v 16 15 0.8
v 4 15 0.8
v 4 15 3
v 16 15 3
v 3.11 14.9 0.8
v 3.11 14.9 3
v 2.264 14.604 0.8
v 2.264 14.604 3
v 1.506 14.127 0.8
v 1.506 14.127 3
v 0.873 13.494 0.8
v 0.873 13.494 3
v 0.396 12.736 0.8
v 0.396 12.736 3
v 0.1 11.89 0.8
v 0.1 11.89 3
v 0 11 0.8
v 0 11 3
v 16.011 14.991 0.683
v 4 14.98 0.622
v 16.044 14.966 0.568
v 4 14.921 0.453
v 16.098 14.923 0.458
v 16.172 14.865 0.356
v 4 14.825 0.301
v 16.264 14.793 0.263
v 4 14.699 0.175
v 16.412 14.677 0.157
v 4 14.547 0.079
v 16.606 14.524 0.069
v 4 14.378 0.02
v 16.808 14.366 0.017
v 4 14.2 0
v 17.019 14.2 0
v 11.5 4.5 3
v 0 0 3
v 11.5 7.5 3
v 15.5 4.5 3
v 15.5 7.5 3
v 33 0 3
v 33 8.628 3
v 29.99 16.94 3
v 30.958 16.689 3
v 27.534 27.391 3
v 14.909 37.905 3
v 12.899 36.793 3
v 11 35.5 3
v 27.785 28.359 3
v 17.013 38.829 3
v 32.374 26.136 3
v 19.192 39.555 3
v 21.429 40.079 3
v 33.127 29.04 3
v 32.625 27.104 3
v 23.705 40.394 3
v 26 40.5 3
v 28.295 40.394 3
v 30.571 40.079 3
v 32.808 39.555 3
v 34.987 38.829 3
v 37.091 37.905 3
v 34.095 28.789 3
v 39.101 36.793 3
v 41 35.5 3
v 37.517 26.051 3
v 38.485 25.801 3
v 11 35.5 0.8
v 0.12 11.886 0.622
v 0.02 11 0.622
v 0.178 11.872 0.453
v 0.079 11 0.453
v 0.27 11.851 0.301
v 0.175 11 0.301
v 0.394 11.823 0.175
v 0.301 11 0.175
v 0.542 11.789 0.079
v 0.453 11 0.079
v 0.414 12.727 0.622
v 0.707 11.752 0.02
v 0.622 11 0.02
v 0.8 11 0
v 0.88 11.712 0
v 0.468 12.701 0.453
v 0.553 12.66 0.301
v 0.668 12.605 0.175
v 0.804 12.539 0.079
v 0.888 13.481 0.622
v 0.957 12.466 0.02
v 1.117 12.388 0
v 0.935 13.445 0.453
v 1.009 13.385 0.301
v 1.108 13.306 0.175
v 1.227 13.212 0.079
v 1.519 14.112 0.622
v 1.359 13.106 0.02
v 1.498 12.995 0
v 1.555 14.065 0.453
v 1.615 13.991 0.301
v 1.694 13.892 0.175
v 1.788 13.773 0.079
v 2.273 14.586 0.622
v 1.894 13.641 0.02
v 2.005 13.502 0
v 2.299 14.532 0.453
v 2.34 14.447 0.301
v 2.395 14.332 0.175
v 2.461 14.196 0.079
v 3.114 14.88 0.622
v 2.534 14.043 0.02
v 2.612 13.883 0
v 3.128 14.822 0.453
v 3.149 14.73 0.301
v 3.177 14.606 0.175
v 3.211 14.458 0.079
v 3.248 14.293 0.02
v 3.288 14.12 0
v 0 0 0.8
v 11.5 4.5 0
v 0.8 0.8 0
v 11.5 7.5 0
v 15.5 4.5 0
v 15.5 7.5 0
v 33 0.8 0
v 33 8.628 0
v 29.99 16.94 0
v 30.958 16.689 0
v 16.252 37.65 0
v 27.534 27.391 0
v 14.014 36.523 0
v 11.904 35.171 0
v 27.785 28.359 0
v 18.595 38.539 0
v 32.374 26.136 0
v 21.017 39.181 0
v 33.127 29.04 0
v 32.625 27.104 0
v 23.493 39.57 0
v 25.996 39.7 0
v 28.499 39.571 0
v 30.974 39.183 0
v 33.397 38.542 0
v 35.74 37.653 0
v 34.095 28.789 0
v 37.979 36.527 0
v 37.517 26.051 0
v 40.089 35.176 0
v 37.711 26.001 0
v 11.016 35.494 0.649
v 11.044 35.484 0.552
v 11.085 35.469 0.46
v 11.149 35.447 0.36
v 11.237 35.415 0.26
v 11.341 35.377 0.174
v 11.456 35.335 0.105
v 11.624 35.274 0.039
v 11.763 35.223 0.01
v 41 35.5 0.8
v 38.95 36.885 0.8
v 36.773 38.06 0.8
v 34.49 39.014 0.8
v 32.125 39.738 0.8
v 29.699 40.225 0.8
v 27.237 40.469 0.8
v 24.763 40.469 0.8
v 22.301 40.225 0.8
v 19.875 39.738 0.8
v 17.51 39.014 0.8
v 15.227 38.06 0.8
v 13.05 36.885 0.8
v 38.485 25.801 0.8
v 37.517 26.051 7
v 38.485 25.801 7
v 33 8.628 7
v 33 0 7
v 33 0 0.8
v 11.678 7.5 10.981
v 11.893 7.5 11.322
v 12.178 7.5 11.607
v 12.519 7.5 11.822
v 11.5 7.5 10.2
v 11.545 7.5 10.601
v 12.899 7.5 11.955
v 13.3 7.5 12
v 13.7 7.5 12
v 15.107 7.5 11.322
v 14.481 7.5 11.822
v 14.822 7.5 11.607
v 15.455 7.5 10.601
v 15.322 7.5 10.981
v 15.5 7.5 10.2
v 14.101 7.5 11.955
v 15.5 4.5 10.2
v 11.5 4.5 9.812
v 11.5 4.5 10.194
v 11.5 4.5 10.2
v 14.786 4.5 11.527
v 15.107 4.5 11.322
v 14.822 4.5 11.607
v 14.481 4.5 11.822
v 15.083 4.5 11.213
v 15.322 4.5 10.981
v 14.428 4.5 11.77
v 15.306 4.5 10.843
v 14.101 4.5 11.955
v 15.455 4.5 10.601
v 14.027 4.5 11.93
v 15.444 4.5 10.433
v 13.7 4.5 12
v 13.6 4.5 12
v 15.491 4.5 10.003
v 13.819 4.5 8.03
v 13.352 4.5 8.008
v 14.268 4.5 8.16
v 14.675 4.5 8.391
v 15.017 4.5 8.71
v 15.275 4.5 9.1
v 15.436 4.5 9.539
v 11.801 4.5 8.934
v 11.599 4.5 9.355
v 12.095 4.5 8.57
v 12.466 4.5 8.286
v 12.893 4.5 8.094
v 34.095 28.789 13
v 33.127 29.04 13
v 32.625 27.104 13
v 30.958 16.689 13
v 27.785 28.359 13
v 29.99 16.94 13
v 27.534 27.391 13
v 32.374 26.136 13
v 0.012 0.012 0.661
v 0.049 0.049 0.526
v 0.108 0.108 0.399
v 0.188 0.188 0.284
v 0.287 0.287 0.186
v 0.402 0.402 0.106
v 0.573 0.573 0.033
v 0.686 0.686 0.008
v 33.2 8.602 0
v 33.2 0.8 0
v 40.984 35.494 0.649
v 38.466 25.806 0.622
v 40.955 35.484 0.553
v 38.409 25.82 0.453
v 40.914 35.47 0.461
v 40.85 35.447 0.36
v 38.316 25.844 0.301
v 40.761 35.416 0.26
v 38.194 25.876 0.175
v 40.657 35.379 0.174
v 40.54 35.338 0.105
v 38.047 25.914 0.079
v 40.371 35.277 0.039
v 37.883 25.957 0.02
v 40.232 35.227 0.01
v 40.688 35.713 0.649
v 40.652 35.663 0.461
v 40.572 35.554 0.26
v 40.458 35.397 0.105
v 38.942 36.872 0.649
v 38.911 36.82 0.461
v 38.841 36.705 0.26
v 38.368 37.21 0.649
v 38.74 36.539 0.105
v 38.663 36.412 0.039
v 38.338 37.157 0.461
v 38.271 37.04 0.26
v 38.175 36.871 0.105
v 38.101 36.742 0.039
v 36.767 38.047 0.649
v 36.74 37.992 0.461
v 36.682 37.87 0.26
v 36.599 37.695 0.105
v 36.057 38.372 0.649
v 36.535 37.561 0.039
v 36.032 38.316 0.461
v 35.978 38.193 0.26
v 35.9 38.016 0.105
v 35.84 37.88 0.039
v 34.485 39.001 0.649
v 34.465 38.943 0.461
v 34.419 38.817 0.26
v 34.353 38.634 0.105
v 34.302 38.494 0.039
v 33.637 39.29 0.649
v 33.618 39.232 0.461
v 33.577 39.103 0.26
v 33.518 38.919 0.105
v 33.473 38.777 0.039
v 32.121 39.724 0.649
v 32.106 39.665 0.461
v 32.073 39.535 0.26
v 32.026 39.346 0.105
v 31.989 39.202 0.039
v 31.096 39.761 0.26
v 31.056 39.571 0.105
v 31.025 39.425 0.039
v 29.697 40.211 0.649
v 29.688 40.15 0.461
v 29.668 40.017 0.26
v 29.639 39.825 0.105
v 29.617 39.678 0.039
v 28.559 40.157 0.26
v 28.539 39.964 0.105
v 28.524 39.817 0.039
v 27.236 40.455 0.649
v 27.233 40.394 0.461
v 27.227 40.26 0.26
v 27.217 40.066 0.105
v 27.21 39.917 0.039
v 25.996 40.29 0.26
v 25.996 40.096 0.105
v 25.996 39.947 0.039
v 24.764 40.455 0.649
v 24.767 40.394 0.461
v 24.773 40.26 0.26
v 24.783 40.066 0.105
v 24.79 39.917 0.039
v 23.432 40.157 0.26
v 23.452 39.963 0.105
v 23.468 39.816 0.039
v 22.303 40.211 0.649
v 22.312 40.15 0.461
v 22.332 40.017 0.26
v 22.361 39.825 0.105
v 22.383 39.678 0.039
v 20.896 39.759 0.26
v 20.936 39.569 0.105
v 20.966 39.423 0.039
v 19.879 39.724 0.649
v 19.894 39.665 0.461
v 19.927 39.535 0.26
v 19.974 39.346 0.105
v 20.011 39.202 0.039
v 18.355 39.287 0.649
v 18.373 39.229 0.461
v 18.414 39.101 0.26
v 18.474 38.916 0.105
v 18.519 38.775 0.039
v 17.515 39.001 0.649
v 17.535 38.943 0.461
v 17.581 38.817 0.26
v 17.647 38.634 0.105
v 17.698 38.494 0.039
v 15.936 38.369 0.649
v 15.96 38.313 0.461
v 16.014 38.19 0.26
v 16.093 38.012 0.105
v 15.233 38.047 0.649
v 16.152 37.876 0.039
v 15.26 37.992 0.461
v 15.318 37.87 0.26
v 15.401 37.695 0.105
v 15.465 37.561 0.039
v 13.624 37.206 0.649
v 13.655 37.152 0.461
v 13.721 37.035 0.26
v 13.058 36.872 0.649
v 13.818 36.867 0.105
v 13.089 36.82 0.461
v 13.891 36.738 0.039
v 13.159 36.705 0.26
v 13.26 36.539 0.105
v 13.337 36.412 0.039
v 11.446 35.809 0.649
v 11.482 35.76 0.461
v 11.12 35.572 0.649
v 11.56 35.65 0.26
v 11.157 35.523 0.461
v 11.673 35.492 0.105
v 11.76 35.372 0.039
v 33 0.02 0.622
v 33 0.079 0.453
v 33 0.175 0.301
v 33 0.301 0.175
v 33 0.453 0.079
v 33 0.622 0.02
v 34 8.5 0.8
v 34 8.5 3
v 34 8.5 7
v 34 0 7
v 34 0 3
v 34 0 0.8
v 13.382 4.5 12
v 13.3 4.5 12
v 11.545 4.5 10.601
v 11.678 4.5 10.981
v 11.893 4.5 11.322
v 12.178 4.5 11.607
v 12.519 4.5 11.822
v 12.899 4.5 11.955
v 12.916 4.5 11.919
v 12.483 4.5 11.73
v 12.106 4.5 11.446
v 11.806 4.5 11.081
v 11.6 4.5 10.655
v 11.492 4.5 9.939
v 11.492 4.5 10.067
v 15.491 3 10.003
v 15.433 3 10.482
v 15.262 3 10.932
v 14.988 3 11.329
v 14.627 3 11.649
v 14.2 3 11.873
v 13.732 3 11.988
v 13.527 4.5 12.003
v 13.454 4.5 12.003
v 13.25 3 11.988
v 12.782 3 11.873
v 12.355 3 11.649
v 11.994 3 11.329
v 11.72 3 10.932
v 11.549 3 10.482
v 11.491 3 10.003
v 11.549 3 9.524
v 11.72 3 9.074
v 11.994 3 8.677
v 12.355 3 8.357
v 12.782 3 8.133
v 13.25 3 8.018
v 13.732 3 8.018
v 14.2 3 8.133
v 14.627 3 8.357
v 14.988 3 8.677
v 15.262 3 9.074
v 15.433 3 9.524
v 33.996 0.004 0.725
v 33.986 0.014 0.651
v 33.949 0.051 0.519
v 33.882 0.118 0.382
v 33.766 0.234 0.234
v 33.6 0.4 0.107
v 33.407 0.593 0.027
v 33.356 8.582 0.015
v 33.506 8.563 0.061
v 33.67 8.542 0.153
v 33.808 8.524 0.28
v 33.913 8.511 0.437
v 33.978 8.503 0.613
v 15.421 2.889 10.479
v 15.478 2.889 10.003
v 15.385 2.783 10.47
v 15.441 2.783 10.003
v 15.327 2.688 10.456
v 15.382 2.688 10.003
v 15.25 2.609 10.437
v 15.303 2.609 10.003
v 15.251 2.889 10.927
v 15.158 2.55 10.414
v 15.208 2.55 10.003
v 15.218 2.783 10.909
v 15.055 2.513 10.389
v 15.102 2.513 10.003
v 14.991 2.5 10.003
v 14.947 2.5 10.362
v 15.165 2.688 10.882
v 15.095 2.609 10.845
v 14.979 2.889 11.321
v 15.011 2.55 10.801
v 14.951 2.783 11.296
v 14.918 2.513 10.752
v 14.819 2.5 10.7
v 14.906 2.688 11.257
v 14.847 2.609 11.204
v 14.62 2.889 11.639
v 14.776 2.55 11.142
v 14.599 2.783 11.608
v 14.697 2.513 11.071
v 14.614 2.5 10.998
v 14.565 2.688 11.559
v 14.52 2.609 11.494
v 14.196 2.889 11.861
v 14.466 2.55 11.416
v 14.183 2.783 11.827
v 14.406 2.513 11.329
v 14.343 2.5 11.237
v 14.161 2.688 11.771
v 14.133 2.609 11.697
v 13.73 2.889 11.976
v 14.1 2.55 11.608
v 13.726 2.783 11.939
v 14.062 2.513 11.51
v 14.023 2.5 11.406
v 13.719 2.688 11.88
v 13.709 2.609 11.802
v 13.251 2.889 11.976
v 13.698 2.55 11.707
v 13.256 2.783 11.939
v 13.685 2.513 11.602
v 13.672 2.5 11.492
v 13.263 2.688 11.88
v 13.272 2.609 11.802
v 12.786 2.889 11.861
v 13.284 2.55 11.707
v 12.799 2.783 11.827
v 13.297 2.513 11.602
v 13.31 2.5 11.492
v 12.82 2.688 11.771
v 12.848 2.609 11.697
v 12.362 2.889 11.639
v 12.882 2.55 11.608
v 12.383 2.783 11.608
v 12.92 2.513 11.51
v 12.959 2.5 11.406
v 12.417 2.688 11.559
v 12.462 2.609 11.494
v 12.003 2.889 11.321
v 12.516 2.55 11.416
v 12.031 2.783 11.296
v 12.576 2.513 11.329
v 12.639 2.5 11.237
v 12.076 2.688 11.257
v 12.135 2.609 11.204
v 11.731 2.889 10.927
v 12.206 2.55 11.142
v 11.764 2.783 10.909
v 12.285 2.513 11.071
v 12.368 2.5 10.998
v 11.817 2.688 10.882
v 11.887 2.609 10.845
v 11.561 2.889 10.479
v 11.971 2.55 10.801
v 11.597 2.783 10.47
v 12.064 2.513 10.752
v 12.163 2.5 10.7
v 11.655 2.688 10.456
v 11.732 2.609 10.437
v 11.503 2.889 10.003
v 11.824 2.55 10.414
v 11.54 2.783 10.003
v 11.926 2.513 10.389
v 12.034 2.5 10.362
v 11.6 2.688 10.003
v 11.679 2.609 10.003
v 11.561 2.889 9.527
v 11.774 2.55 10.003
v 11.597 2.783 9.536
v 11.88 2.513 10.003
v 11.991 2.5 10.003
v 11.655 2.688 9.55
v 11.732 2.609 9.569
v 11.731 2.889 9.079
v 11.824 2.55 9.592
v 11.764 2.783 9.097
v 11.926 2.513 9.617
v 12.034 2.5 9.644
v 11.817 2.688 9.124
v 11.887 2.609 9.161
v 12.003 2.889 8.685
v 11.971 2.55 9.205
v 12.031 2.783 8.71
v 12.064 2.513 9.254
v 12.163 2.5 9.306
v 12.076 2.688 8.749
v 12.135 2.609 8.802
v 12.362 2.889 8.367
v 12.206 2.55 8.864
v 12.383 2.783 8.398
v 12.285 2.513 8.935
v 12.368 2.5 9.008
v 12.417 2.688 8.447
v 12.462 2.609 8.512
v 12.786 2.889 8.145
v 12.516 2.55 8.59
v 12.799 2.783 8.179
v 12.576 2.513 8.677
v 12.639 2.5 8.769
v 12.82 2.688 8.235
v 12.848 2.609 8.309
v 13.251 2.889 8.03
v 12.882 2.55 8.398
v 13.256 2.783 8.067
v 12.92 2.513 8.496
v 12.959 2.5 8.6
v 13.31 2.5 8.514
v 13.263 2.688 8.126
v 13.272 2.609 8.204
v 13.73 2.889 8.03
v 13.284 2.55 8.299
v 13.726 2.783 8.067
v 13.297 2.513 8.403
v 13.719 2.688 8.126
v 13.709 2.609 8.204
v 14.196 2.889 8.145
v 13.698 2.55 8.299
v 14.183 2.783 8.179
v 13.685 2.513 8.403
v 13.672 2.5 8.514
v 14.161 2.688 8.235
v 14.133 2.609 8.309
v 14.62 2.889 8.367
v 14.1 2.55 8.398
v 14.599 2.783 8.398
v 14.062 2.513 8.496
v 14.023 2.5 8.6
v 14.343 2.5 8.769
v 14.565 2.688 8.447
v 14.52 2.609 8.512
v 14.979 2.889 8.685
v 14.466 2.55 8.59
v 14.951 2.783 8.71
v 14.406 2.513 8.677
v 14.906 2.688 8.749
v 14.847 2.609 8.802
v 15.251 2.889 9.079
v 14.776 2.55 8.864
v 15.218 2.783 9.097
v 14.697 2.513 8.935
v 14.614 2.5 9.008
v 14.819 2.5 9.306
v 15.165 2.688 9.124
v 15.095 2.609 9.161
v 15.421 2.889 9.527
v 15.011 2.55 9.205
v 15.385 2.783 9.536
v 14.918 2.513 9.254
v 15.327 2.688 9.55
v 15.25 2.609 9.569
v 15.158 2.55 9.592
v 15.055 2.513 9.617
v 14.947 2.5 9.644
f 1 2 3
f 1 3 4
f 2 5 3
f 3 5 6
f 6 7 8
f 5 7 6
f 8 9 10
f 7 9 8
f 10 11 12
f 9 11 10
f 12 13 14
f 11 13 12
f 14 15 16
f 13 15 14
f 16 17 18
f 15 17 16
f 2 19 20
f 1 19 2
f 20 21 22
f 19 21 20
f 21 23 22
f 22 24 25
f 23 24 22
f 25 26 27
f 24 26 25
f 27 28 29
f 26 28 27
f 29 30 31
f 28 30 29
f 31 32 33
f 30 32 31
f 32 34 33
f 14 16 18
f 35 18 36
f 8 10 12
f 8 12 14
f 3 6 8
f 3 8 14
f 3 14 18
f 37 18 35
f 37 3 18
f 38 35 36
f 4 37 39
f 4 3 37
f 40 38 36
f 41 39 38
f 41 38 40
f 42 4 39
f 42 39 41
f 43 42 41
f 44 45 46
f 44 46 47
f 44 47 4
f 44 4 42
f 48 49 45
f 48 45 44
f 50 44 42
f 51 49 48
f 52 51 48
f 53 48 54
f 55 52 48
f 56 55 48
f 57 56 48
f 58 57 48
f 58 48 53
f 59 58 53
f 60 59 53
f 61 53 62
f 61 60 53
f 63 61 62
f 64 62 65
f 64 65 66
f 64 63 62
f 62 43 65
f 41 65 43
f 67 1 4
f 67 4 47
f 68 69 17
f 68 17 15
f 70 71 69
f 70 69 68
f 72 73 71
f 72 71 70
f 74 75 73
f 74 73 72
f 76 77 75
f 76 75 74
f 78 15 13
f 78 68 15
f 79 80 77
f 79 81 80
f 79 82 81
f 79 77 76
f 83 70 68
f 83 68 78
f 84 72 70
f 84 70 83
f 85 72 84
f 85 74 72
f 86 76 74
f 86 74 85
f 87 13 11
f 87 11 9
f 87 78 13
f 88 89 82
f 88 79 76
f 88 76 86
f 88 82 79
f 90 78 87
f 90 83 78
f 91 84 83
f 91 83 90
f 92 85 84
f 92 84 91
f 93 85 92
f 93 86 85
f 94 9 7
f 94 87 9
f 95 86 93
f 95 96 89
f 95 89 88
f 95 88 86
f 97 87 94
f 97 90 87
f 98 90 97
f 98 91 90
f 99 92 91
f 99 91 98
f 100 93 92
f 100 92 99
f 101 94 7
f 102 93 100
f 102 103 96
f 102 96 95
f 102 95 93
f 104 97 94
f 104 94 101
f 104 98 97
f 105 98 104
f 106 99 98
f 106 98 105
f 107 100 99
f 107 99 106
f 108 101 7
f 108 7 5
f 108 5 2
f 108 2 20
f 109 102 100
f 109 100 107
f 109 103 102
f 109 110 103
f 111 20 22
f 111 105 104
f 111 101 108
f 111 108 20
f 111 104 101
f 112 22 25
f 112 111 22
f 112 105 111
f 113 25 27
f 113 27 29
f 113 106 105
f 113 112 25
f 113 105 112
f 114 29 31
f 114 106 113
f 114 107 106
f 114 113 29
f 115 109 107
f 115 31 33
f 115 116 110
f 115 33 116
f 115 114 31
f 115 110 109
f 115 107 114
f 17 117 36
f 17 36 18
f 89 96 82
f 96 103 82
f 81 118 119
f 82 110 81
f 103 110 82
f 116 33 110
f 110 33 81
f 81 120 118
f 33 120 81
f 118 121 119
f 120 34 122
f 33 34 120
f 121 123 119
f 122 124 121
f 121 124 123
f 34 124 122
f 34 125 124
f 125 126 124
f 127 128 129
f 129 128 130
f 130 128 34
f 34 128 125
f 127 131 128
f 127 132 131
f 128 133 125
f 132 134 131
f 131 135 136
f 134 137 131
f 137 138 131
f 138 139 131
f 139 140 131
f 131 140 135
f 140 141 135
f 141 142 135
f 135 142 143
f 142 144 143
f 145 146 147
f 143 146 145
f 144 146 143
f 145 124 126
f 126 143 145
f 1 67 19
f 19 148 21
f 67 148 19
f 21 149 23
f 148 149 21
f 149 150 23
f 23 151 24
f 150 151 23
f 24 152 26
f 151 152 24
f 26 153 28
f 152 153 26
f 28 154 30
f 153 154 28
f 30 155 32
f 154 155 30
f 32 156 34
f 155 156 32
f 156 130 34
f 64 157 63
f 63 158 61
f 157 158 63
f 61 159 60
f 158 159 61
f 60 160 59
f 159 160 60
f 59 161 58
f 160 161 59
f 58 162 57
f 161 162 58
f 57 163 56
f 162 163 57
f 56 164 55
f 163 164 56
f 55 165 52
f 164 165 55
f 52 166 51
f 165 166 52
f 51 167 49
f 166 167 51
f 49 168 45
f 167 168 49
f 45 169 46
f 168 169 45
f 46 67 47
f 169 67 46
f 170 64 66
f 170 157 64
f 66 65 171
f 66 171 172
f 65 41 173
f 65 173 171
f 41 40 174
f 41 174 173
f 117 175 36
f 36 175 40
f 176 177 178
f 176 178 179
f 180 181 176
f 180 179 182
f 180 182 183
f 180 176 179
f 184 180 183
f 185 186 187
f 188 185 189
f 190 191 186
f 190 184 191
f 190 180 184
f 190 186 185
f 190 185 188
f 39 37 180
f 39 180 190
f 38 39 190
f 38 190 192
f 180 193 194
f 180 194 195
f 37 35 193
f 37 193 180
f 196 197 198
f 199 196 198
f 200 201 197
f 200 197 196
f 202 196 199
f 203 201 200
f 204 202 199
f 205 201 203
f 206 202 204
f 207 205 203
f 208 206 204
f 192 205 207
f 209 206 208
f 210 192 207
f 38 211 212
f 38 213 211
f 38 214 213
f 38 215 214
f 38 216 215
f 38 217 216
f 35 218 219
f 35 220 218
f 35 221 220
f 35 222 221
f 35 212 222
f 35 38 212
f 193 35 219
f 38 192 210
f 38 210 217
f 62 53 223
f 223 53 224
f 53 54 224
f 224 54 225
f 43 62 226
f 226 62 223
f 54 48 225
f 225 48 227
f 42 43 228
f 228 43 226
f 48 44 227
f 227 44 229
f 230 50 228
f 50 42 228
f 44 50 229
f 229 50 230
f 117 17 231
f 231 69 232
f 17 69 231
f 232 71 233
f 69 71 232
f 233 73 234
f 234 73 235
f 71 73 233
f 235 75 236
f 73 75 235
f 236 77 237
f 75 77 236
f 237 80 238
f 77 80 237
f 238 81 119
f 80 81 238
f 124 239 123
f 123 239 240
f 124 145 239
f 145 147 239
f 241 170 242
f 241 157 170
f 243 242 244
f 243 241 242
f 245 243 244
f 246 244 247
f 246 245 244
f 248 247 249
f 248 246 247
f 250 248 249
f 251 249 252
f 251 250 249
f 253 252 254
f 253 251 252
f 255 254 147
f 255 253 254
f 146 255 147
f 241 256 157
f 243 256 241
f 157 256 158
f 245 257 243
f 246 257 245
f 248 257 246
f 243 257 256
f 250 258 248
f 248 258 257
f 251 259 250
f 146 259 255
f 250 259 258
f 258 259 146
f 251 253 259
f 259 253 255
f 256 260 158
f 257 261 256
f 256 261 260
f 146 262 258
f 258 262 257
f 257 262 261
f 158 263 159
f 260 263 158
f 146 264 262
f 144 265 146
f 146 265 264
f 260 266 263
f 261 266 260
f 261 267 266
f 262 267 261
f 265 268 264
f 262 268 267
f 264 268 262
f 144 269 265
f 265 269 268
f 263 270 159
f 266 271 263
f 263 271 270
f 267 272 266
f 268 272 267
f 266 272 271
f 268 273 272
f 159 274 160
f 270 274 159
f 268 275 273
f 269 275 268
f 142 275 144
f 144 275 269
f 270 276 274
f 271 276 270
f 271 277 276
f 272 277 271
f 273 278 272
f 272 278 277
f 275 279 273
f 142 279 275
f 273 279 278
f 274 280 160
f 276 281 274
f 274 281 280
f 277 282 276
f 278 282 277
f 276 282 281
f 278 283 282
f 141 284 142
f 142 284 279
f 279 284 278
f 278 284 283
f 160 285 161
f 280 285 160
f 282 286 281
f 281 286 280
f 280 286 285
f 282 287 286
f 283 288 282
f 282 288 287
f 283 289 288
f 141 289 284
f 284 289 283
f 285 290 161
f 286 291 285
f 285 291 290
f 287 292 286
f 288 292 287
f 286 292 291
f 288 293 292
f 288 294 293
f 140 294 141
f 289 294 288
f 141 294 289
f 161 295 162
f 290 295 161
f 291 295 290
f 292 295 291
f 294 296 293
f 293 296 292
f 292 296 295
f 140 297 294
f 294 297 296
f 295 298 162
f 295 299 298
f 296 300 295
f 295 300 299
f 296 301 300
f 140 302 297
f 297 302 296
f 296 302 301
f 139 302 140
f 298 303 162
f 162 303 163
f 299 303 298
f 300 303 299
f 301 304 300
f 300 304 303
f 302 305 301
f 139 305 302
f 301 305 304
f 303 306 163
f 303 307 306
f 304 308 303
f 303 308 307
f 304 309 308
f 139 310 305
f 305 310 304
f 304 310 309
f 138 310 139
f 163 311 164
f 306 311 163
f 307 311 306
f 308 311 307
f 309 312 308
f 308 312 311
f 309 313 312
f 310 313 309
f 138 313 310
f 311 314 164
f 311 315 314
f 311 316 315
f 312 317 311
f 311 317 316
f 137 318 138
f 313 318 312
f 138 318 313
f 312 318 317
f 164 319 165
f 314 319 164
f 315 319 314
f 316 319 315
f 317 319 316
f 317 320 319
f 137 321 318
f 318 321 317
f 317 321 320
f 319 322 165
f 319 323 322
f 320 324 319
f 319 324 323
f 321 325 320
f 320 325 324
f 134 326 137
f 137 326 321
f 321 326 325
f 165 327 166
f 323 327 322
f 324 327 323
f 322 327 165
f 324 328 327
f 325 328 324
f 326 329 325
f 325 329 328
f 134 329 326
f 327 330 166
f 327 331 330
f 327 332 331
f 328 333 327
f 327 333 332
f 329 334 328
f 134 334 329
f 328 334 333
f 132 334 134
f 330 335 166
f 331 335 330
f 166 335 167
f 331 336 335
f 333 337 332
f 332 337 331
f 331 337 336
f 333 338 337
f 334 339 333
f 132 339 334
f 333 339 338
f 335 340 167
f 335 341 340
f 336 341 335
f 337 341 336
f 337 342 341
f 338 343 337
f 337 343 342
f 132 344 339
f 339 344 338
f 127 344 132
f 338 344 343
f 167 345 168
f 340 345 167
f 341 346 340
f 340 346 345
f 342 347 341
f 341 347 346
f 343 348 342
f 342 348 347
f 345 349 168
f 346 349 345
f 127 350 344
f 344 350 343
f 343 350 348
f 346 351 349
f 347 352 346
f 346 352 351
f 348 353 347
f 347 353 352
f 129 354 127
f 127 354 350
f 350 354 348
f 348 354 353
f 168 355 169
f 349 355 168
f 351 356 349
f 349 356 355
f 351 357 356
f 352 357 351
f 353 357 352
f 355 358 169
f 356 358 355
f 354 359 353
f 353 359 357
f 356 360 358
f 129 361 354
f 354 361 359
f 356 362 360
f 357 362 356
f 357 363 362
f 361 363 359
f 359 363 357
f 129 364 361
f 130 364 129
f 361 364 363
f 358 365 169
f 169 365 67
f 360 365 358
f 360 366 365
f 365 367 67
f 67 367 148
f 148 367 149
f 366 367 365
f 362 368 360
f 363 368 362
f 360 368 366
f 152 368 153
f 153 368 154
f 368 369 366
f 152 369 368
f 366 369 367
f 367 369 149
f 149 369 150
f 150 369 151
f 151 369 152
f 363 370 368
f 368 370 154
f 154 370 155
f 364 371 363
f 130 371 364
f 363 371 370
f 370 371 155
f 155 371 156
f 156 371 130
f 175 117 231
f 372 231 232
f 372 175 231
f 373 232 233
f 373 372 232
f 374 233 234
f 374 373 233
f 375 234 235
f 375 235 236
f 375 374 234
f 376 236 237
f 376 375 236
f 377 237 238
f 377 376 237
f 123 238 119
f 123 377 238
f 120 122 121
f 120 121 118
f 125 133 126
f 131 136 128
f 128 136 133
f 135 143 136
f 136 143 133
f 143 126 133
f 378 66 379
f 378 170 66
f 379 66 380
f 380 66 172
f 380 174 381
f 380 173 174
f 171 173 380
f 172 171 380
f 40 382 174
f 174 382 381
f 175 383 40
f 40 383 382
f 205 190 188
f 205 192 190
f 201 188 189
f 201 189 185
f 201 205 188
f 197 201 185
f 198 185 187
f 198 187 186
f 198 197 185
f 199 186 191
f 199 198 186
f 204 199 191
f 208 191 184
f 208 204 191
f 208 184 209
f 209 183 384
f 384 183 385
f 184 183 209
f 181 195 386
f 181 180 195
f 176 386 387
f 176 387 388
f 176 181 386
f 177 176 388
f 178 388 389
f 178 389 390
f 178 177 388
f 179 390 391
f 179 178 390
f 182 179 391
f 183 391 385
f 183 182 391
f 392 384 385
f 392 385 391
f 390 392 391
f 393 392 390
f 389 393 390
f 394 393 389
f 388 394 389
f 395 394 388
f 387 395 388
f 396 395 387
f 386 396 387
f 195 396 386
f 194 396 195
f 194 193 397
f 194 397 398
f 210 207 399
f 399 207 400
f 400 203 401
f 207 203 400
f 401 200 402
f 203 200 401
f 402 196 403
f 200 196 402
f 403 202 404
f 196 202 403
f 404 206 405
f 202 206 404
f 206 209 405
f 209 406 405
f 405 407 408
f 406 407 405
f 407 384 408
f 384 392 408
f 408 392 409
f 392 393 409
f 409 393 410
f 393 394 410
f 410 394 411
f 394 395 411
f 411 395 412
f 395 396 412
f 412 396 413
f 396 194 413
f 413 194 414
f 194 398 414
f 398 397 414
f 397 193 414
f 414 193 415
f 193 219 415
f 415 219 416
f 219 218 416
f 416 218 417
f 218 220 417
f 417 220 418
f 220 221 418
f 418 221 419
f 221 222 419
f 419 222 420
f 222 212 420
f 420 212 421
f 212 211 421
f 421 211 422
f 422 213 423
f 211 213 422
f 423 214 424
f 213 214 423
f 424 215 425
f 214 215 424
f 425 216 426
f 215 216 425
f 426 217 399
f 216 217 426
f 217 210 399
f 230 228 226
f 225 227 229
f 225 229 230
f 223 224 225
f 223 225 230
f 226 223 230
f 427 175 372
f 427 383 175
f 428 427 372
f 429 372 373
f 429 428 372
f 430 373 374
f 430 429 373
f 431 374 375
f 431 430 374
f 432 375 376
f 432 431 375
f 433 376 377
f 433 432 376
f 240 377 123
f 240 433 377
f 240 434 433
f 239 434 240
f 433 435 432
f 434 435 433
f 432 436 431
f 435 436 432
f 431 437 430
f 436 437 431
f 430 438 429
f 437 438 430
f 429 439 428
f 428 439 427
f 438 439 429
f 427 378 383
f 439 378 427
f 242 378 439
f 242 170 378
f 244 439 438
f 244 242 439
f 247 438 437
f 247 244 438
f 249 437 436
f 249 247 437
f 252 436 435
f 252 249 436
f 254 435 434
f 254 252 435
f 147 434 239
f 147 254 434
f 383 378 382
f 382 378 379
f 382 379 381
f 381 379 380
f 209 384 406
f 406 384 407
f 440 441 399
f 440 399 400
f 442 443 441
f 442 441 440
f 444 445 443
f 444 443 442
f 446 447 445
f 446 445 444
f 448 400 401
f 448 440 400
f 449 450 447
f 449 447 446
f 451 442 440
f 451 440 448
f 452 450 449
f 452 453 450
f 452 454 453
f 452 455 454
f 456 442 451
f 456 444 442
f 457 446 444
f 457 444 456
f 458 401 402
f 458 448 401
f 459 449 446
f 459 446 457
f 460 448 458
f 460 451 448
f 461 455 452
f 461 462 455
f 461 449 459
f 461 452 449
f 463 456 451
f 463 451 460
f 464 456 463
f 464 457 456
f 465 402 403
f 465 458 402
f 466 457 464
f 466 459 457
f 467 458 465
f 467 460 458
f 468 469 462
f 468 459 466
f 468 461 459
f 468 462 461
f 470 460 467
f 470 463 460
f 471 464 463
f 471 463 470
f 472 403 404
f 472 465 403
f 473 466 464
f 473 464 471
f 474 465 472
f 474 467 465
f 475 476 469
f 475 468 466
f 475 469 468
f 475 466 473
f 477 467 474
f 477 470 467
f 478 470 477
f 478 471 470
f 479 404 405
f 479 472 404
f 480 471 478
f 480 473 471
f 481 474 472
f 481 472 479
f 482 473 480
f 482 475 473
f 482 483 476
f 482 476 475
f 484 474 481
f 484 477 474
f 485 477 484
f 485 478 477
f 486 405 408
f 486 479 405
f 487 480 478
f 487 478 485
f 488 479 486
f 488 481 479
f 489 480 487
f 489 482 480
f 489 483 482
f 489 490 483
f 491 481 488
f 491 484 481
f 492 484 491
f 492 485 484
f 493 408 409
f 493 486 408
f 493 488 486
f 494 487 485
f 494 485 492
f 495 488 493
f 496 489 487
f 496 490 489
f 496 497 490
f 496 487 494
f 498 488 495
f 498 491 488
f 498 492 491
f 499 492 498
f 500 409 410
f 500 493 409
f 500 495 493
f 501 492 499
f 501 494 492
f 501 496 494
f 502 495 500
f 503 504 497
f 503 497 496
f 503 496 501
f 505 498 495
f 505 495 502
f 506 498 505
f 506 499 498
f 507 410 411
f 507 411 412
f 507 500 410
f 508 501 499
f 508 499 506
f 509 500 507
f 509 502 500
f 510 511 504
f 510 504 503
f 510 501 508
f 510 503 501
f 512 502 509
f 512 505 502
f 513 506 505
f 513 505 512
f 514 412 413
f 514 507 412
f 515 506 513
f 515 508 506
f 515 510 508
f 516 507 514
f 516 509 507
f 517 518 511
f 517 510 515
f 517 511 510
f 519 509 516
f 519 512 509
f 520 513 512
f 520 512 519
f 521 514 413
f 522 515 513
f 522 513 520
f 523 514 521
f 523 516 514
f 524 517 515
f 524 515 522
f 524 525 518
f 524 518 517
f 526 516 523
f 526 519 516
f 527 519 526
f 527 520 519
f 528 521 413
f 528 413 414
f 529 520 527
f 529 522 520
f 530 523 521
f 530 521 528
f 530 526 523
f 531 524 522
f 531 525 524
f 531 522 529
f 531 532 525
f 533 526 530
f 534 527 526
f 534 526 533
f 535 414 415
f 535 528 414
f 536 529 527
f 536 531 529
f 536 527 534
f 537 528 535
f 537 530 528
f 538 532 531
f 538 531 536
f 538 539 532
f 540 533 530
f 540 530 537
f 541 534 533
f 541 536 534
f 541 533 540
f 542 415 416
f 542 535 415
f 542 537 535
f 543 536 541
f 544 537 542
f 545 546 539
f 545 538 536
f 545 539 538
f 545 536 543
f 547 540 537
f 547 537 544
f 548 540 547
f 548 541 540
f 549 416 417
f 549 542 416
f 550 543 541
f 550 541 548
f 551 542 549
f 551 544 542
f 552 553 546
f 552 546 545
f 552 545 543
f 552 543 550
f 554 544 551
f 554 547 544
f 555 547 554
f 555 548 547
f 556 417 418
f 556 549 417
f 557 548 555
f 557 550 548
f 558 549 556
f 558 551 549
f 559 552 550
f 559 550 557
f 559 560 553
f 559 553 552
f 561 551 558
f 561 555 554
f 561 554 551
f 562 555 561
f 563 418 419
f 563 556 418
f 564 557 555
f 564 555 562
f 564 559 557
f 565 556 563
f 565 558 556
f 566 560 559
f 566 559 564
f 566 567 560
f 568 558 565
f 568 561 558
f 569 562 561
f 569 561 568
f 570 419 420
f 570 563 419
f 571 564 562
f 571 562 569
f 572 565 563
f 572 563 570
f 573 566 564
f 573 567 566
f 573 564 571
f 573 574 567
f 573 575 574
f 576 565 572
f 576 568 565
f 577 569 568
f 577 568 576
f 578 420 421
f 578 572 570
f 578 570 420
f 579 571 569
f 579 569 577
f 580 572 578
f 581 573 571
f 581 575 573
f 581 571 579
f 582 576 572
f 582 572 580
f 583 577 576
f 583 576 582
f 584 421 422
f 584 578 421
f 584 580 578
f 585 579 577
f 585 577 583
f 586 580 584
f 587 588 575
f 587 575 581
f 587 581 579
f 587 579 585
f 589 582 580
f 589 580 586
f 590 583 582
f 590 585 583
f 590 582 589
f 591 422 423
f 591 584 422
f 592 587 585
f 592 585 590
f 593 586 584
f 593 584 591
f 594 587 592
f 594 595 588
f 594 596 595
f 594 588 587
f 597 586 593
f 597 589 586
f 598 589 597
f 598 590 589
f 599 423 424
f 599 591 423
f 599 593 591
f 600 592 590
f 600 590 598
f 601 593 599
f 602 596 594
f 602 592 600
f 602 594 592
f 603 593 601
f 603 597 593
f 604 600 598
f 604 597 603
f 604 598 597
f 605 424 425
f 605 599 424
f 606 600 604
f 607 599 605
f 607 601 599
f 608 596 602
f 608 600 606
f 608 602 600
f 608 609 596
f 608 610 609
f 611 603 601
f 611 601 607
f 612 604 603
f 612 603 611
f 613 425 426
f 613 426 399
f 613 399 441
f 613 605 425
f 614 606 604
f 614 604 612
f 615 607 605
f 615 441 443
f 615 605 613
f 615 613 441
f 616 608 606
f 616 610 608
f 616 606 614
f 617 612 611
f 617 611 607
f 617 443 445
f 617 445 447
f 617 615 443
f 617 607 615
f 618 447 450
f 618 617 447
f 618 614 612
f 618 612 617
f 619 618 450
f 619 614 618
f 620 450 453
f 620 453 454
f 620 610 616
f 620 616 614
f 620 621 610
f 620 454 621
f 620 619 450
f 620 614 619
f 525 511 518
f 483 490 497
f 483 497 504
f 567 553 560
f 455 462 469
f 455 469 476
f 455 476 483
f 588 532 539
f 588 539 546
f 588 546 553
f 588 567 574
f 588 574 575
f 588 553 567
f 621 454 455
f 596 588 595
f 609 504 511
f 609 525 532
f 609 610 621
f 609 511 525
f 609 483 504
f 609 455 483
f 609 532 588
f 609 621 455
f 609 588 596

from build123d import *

# Parameters (mm, degrees)
PAD_DEPTH    = 3
PAD001_DEPTH = 13
SKETCH001_W  = 4
SKETCH001_H  = 3
PAD002_DEPTH = 12
PAD003_DEPTH = 7
SKETCH005_R  = 2
PAD004_DEPTH = 2
FILLET_R     = 1.8
FILLET001_R  = 0.5
FILLET002_R  = 0.8


with BuildPart() as part:
    # Sketch → Pad (new body)
    with BuildSketch(Plane.XY):
        with BuildLine():
            Line((0, 0), (34, 0))
            Line((34, 0), (34, 8.5))
            Line((34, 8.5), (41, 35.5))
            ThreePointArc((41, 35.5), (26, 40.5), (11, 35.5))
            Line((16, 15), (11, 35.5))
            Line((4, 15), (16, 15))
            ThreePointArc((4, 15), (1.171573, 13.828427), (0, 11))
            Line((0, 0), (0, 11))
        make_face()
    extrude(amount=PAD_DEPTH)

    # Sketch002 → Pad001 (join)
    with BuildSketch(Plane.XY):
        Polygon((30.957764, 16.688984), (34.094791, 28.788945), (33.126794, 29.039907), (32.62487, 27.103913), (27.784885, 28.358724), (27.533923, 27.390727), (32.373908, 26.135916), (29.989767, 16.939946), align=None)
    extrude(amount=PAD001_DEPTH)

    # Sketch001 → Pad002 (join)
    with BuildSketch(Plane.XY):
        with Locations((13.5, 6)):
            Rectangle(SKETCH001_W, SKETCH001_H)
    extrude(amount=PAD002_DEPTH)

    # Sketch003 → Pad003 (join)
    with BuildSketch(Plane.XY):
        Polygon((34, 0), (34, 8.5), (38.485316, 25.800504), (37.517319, 26.051466), (33, 8.627522), (33, 0), align=None)
    extrude(amount=PAD003_DEPTH)

    # Sketch005 (on Face19 of Pad003) → Pad004 (join)
    with BuildSketch(Plane.XZ.offset(-4.5)):
        with Locations((13.490876, 10.002978)):
            Circle(SKETCH005_R)
    extrude(amount=PAD004_DEPTH)

    # Fillet
    fillet_edges = [part.edges().sort_by_distance(p)[0] for p in [
        (11.5, 6, 12),
        (15.5, 6, 12),
    ]]
    fillet(fillet_edges, radius=FILLET_R)

    # Fillet001
    fillet001_edges = [part.edges().sort_by_distance(p)[0] for p in [
        (11.490876, 2.5, 10.002978),
    ]]
    fillet(fillet001_edges, radius=FILLET001_R)

    # Fillet002
    fillet002_edges = [part.edges().sort_by_distance(p)[0] for p in [
        (36.242658, 17.150252, 0),
        (34, 4.25, 0),
        (33.5, 0, 0),
        (16.5, 0, 0),
        (0, 5.5, 0),
        (1.171573, 13.828427, 0),
        (10, 15, 0),
        (13.5, 25.25, 0),
        (26, 40.5, 0),
        (39.742658, 30.650252, 0),
    ]]
    fillet(fillet002_edges, radius=FILLET002_R)


solid = part.part
